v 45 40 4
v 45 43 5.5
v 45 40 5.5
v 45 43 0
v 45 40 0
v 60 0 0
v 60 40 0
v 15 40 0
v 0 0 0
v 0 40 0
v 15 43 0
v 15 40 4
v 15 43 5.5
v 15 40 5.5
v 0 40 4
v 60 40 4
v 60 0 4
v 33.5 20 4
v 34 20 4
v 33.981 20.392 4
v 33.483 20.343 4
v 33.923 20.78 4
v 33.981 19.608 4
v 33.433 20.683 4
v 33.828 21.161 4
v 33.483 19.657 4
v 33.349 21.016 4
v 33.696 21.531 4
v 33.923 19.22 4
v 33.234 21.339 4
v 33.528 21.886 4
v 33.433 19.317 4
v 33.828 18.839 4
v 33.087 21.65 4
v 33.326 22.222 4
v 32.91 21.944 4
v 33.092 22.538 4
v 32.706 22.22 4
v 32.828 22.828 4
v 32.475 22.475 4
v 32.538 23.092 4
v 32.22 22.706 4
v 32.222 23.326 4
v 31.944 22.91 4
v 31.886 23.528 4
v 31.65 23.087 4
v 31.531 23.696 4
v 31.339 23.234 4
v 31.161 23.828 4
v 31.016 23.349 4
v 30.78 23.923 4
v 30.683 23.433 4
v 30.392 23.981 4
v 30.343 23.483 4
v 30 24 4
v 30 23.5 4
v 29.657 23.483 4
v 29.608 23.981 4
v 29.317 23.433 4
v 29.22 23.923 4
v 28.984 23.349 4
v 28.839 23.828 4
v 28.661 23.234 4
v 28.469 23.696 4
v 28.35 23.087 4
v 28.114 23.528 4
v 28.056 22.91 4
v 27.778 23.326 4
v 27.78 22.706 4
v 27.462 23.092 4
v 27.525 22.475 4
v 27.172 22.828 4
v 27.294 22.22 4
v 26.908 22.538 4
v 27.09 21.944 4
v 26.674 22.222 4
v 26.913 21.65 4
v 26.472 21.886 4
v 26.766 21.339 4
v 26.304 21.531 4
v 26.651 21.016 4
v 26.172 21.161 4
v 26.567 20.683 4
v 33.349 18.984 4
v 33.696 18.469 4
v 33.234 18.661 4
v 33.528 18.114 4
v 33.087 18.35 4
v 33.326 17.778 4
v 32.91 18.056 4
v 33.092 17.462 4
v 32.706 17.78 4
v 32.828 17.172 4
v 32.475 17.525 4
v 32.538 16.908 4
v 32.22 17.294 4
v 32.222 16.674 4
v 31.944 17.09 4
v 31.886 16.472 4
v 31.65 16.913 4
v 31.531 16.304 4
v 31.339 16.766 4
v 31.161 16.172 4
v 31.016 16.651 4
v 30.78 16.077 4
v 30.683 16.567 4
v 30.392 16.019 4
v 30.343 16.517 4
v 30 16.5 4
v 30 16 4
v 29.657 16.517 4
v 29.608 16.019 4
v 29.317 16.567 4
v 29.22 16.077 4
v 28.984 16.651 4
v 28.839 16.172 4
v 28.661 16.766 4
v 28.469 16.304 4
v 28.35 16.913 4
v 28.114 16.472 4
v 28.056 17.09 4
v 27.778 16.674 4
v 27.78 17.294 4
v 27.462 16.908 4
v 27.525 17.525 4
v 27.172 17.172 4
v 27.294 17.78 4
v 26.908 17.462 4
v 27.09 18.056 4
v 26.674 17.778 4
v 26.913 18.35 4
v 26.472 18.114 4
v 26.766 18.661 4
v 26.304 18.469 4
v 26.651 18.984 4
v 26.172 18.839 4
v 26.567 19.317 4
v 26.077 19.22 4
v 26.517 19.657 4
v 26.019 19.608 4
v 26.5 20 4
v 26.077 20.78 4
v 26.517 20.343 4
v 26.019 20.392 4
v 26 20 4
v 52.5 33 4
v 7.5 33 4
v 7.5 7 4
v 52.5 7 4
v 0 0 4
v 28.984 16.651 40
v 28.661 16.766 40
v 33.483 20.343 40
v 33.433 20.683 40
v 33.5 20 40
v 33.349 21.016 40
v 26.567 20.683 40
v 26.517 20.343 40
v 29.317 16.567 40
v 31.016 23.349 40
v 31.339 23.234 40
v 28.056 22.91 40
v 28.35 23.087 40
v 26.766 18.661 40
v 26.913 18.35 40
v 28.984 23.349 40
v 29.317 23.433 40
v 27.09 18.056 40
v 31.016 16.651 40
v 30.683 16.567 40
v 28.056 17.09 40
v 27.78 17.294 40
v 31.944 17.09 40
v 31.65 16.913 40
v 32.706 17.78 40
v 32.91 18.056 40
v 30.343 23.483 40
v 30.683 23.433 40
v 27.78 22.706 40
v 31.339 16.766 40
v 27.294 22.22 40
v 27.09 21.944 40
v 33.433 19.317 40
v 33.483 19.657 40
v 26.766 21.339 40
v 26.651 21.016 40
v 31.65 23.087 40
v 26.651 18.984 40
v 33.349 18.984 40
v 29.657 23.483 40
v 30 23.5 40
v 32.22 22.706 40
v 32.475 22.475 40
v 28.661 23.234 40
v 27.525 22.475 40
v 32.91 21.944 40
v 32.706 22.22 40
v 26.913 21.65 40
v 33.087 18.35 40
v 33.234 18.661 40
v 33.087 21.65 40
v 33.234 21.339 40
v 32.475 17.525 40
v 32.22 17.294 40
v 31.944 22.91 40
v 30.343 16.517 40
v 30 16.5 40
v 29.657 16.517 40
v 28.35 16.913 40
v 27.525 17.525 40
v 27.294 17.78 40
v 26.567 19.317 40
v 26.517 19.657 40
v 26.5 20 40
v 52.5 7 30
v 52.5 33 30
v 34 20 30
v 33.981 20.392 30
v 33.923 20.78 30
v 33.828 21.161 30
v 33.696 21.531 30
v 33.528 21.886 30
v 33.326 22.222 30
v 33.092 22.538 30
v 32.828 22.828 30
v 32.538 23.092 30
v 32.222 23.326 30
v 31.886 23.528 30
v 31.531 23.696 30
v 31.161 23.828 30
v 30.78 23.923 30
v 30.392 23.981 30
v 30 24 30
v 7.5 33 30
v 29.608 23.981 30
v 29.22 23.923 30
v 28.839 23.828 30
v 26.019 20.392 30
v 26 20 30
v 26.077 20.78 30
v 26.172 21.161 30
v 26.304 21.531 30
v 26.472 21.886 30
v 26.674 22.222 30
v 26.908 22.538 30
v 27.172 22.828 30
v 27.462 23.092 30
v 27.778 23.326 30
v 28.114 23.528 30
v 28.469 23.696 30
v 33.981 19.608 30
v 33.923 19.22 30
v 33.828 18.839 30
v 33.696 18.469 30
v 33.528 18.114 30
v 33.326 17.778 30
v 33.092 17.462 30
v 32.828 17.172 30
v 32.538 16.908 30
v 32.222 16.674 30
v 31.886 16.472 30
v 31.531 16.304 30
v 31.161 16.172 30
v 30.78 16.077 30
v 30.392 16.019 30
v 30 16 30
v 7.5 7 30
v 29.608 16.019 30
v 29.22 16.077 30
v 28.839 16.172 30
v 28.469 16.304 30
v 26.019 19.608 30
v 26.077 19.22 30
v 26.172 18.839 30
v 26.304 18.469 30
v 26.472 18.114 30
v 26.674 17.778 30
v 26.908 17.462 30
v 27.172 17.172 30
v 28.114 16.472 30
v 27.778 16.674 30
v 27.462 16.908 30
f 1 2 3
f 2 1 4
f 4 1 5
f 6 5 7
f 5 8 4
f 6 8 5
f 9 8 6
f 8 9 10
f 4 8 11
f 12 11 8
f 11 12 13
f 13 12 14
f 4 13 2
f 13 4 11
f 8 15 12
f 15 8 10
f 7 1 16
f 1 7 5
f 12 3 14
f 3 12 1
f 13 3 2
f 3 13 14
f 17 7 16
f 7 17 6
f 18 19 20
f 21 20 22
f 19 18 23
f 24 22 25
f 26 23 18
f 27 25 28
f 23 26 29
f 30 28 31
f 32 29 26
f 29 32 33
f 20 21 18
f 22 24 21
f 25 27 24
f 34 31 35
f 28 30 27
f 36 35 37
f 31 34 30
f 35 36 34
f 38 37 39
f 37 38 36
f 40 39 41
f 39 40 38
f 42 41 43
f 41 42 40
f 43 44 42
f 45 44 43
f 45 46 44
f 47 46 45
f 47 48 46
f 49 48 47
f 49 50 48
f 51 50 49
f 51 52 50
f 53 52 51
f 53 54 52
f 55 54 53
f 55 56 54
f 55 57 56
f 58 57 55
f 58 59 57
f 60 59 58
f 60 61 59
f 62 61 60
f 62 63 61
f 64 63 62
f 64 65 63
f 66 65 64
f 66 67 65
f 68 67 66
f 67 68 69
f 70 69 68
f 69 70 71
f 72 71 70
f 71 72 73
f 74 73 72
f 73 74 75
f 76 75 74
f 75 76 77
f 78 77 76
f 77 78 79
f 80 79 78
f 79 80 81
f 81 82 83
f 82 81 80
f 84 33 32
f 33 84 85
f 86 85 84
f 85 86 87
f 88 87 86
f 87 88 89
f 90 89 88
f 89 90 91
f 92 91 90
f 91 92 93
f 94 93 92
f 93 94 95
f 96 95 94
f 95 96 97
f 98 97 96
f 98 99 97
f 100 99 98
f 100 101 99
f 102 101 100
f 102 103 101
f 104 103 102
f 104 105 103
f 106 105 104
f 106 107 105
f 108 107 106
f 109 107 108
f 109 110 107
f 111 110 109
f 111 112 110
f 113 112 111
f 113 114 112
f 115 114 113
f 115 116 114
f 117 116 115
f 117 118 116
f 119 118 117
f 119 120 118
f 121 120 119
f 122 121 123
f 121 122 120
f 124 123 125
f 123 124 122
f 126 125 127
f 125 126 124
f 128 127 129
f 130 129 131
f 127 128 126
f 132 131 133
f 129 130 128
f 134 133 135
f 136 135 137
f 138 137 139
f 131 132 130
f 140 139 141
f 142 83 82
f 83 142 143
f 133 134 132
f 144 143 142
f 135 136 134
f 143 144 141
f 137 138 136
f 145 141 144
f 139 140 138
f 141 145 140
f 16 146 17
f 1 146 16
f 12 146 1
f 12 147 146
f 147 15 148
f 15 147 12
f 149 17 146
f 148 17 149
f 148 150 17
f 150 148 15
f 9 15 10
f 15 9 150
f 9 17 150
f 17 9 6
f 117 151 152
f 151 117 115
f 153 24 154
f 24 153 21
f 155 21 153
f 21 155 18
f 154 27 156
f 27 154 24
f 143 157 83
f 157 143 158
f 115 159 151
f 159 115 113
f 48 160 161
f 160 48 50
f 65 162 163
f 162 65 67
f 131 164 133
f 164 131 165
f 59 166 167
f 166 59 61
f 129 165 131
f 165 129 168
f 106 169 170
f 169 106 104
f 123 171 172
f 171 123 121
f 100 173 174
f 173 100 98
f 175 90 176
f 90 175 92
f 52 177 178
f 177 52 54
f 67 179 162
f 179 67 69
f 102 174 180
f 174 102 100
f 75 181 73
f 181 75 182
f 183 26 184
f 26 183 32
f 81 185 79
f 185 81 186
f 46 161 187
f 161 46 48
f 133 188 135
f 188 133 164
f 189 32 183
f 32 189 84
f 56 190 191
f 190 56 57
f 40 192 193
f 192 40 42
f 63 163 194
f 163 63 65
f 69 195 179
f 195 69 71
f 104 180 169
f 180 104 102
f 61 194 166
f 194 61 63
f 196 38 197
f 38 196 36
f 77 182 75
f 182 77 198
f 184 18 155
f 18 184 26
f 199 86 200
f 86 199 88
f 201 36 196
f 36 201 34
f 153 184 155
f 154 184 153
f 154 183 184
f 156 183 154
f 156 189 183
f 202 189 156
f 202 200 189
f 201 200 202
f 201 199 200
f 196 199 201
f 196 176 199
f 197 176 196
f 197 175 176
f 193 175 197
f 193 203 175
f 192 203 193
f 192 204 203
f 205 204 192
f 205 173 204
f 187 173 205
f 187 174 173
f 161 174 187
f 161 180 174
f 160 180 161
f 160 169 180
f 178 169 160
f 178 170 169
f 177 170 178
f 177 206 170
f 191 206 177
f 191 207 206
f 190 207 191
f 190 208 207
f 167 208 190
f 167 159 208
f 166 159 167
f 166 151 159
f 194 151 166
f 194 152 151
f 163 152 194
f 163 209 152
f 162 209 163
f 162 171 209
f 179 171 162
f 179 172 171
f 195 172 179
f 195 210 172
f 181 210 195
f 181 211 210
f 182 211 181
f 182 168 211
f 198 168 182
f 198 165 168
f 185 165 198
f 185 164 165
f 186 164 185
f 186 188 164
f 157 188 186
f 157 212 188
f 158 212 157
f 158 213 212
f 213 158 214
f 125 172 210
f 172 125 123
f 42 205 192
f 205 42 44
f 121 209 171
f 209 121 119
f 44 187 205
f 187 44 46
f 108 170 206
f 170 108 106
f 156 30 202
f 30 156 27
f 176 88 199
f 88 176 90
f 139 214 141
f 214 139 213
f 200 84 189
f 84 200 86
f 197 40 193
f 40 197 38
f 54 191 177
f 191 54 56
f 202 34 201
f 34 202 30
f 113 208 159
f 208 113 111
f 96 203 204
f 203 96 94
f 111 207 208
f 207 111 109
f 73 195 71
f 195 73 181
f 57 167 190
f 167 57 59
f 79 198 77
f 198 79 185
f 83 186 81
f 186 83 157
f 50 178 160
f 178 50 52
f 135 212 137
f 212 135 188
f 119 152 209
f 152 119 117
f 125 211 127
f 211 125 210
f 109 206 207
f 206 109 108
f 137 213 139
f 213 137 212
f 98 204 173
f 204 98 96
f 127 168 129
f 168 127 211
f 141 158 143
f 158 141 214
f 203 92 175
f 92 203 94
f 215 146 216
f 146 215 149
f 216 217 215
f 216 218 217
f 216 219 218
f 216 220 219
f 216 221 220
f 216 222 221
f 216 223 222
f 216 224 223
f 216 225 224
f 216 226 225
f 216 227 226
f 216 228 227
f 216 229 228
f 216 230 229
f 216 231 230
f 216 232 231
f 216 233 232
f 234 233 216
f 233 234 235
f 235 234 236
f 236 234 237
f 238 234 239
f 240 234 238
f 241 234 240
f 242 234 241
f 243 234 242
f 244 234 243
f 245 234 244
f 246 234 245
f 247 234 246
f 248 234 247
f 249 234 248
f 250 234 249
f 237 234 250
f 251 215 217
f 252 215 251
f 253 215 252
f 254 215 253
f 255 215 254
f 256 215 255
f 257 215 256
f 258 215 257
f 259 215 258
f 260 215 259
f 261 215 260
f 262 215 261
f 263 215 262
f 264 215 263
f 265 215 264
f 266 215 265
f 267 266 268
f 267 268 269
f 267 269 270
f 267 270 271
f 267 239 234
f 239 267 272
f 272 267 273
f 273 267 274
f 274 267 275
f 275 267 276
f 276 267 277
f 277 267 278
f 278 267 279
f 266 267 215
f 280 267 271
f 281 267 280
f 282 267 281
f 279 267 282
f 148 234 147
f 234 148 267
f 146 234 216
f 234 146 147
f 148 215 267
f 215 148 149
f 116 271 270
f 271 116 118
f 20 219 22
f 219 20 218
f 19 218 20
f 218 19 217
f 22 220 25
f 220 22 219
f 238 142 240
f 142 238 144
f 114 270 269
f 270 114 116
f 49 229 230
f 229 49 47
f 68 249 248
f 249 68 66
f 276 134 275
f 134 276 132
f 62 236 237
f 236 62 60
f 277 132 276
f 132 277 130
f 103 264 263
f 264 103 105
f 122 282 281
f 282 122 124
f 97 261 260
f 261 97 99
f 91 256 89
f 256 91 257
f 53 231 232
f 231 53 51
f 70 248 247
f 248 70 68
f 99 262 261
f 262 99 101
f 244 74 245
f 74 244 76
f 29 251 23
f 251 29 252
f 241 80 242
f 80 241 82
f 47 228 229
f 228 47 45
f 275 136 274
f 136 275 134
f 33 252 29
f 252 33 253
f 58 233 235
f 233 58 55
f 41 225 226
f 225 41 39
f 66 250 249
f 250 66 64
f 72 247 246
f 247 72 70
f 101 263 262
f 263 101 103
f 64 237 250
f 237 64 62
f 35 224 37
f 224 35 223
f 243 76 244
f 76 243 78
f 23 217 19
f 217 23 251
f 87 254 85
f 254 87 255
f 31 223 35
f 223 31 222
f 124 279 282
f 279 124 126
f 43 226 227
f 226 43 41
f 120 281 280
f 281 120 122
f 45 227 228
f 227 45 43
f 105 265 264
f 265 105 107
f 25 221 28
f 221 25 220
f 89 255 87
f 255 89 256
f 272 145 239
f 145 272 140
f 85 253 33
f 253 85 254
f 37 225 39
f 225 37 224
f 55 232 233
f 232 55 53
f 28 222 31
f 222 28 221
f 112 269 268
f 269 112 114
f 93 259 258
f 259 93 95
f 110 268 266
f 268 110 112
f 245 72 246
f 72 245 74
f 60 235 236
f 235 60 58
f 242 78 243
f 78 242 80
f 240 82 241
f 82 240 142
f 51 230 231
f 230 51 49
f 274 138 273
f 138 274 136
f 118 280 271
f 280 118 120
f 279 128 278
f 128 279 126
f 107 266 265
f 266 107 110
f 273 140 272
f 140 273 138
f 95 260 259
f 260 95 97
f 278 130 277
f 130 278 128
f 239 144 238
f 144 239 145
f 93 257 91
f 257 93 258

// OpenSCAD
// Modular Bait Holder for CONTRAC Blox with Lumitrack
// Designed to be a separate, serviceable part that attaches to the main trap tube.

// ========== PARAMETERS ==========

// Bait Block Dimensions (CONTRAC All-Weather Blox)
bait_block_width = 45;  // mm (1.75 in)
bait_block_depth = 26;  // mm (1 in)
bait_block_height = 26; // mm (1 in)
bait_block_hole_d = 8; // mm (approximate diameter of the center hole)

// Holder Dimensions
base_plate_width = 60;
base_plate_depth = 40;
base_plate_thickness = 4;
rod_height = bait_block_height + 10;
rod_diameter = bait_block_hole_d - 1; // Slightly smaller for clearance

// Attachment Mechanism (Slide-in Rail)
rail_width = 30;
rail_thickness = 3;
rail_tongue_thickness = 1.5;
rail_groove_tolerance = 0.4;

$fn = 64;

// ========== MODULES ==========

module bait_holder() {
    union() {
        // Base plate
        cube([base_plate_width, base_plate_depth, base_plate_thickness]);

        // Bait securing rod
        translate([base_plate_width / 2, base_plate_depth / 2, base_plate_thickness]) {
            cylinder(h = rod_height, d = rod_diameter);
        }

        // Attachment rail (tongue part)
        translate([(base_plate_width - rail_width) / 2, base_plate_depth, 0]) {
            cube([rail_width, rail_thickness, base_plate_thickness]);
            translate([0, 0, base_plate_thickness]) {
                cube([rail_width, rail_thickness, rail_tongue_thickness]);
            }
        }
    }
}

// --- Visualization ---
// Show the bait holder with a representation of the bait block

module assembly_visualization() {
    // Bait holder
    color("darkgrey")
    bait_holder();

    // Bait block representation
    color("blue", 0.5)
    translate([
        (base_plate_width - bait_block_width) / 2,
        (base_plate_depth - bait_block_depth) / 2,
        base_plate_thickness
    ]) {
        difference() {
            cube([bait_block_width, bait_block_depth, bait_block_height]);
            translate([bait_block_width/2, bait_block_depth/2, -1])
            cylinder(h = bait_block_height + 2, d = bait_block_hole_d);
        }
    }
}


// ========== ASSEMBLY CALL ==========
assembly_visualization();
